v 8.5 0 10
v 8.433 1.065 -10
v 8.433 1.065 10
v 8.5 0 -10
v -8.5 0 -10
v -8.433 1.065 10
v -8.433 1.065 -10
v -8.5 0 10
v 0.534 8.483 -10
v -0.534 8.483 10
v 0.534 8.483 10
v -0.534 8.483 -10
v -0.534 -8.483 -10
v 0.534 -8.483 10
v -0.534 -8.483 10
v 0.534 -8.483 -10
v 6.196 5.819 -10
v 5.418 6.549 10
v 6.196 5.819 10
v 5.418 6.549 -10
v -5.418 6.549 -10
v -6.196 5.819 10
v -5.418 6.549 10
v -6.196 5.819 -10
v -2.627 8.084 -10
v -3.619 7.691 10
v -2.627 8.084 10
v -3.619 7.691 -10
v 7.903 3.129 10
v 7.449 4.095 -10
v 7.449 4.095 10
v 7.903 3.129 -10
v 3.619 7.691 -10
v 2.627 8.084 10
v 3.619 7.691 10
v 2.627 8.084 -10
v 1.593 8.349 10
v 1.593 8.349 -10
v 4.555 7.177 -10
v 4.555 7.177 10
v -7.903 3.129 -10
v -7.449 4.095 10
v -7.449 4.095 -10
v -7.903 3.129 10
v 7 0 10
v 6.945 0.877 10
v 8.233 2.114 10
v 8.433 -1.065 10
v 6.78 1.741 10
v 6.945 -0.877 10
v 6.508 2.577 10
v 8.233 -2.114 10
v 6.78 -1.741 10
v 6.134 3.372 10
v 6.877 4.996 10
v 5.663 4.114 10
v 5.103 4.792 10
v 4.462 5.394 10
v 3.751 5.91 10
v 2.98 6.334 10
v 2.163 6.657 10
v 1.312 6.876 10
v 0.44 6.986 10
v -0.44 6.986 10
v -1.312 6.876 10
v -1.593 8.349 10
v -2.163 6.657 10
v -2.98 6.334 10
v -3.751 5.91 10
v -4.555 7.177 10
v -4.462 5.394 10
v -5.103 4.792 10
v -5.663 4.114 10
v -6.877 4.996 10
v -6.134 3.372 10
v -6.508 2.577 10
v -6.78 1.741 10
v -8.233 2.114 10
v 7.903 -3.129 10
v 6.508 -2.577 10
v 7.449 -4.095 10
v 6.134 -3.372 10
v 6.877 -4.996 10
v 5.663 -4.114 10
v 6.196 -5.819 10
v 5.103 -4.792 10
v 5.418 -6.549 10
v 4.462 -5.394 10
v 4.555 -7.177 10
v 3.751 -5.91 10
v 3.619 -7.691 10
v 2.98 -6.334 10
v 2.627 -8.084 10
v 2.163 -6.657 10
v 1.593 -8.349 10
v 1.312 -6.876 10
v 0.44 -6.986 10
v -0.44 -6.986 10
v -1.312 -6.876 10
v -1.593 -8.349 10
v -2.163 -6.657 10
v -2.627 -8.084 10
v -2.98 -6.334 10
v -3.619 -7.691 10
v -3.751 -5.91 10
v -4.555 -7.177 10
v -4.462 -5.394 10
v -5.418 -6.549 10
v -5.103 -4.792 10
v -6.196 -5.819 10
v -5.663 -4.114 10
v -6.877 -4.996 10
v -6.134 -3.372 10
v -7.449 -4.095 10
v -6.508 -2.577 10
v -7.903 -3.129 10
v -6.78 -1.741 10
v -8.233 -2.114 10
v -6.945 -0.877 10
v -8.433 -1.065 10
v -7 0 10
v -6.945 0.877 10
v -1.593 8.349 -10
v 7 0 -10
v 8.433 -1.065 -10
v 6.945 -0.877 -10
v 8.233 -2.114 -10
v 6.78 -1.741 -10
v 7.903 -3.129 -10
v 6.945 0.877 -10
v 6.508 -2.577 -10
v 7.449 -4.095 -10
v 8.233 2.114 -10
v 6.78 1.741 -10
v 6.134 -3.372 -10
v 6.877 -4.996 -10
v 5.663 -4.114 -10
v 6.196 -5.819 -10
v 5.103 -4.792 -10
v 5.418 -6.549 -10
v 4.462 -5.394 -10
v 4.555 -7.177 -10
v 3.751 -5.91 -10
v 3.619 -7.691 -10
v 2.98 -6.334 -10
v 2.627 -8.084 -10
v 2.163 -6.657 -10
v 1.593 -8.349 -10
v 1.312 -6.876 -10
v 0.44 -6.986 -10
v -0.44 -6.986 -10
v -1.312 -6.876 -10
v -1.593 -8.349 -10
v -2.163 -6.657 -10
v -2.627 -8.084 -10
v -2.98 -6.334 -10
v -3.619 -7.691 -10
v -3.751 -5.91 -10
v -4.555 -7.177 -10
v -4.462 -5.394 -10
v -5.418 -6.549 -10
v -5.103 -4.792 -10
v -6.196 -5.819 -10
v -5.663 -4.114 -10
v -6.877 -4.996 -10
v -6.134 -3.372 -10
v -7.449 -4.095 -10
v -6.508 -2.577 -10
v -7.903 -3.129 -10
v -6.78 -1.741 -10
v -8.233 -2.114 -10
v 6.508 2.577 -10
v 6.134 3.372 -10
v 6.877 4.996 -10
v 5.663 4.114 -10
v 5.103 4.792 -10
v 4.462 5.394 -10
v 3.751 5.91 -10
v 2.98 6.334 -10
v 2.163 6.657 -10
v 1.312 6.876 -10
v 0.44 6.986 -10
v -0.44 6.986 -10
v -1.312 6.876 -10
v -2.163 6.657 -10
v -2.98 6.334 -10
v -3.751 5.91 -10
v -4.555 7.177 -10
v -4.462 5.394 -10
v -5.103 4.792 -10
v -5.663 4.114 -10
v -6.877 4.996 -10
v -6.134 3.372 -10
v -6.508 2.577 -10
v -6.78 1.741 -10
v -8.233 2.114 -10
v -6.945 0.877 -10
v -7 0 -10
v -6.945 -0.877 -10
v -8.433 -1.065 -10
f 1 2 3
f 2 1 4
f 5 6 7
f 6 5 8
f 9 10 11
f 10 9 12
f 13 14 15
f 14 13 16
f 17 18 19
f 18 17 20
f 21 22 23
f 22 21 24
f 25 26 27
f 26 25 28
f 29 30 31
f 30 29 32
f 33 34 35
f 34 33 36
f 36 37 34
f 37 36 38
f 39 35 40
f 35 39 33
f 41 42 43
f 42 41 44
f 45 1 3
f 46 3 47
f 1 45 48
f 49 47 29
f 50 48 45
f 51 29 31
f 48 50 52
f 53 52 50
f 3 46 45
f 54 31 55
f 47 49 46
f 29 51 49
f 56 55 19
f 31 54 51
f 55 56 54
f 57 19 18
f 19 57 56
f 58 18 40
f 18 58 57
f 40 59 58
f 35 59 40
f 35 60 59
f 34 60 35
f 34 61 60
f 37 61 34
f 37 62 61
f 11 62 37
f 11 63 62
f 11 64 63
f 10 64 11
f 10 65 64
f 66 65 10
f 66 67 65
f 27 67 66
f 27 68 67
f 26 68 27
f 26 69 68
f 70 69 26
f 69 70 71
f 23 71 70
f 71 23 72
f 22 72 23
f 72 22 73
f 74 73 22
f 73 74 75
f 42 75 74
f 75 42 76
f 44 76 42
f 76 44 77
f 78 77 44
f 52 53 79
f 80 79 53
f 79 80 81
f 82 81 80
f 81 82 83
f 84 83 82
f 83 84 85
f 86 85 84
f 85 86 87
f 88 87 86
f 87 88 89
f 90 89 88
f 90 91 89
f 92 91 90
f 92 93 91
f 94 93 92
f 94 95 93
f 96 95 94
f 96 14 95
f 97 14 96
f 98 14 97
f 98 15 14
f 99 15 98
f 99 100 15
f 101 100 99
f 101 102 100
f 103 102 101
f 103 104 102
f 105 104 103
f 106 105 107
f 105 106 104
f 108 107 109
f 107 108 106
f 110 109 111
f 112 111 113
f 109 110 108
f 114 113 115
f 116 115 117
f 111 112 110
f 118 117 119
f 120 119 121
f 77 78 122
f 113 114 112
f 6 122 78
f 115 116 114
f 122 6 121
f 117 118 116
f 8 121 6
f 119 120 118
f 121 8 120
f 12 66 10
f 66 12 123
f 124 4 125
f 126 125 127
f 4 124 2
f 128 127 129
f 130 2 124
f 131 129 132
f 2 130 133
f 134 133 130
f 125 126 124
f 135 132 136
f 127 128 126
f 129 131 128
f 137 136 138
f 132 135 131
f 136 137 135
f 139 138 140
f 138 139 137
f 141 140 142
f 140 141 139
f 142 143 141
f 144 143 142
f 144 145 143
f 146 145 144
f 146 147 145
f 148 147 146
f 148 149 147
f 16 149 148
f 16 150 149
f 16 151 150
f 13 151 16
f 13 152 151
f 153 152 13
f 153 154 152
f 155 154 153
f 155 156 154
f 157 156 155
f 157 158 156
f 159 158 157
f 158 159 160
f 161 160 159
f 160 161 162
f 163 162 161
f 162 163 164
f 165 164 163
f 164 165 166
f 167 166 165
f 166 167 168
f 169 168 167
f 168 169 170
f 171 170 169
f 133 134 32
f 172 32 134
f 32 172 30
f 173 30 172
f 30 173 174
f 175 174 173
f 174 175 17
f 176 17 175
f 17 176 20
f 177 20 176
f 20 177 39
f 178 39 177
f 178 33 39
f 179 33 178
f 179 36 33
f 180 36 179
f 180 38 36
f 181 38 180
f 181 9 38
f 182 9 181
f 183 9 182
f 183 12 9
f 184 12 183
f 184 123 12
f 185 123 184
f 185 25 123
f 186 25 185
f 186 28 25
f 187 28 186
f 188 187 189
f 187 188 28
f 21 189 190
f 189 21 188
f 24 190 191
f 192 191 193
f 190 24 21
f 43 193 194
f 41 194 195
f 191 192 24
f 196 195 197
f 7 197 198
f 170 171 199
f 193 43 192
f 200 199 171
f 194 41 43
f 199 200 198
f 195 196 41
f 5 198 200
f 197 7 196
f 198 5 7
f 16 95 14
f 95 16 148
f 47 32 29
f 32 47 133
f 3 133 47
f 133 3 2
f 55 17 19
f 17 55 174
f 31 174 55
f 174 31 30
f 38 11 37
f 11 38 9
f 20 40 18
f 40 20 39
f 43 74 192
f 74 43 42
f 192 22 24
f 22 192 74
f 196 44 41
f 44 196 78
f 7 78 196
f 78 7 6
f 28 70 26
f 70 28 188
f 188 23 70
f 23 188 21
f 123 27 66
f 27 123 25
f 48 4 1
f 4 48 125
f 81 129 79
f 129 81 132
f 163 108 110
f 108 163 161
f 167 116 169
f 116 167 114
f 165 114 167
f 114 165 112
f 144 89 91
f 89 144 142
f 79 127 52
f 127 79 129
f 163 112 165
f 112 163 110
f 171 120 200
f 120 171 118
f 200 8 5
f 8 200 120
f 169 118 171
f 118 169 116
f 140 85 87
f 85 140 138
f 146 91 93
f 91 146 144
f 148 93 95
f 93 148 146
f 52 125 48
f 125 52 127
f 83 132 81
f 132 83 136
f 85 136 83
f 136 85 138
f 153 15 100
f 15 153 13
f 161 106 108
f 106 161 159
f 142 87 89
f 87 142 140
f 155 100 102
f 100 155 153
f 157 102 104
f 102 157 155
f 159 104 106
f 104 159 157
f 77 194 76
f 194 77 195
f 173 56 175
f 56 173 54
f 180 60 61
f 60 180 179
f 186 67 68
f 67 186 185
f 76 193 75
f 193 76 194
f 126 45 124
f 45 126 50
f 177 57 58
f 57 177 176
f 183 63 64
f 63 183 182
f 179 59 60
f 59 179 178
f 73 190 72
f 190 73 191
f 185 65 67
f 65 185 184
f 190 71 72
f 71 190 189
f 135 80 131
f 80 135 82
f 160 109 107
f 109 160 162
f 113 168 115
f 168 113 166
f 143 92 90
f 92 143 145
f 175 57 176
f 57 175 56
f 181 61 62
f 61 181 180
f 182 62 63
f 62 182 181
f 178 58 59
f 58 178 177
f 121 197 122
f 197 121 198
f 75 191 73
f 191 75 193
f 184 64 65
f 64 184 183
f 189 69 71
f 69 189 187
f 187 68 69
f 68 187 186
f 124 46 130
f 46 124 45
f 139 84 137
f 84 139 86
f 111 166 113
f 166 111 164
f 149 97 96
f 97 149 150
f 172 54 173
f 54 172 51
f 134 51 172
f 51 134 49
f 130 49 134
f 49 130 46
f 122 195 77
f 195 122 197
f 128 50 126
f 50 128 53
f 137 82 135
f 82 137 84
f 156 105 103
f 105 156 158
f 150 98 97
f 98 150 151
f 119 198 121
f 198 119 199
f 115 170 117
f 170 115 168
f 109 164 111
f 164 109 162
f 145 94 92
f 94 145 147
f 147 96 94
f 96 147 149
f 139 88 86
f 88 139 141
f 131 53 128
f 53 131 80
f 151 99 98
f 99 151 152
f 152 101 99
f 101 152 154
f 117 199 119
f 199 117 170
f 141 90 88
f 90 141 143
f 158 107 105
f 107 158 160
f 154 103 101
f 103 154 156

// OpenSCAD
$fn = 50;


difference() {
	union() {
		translate(v = [0, 0, -10.0000000000]) {
			cylinder(h = 20, r = 8.5000000000);
		}
	}
	union() {
		translate(v = [0, 0, -100.0000000000]) {
			cylinder(h = 200, r = 7);
		}
	}
}
